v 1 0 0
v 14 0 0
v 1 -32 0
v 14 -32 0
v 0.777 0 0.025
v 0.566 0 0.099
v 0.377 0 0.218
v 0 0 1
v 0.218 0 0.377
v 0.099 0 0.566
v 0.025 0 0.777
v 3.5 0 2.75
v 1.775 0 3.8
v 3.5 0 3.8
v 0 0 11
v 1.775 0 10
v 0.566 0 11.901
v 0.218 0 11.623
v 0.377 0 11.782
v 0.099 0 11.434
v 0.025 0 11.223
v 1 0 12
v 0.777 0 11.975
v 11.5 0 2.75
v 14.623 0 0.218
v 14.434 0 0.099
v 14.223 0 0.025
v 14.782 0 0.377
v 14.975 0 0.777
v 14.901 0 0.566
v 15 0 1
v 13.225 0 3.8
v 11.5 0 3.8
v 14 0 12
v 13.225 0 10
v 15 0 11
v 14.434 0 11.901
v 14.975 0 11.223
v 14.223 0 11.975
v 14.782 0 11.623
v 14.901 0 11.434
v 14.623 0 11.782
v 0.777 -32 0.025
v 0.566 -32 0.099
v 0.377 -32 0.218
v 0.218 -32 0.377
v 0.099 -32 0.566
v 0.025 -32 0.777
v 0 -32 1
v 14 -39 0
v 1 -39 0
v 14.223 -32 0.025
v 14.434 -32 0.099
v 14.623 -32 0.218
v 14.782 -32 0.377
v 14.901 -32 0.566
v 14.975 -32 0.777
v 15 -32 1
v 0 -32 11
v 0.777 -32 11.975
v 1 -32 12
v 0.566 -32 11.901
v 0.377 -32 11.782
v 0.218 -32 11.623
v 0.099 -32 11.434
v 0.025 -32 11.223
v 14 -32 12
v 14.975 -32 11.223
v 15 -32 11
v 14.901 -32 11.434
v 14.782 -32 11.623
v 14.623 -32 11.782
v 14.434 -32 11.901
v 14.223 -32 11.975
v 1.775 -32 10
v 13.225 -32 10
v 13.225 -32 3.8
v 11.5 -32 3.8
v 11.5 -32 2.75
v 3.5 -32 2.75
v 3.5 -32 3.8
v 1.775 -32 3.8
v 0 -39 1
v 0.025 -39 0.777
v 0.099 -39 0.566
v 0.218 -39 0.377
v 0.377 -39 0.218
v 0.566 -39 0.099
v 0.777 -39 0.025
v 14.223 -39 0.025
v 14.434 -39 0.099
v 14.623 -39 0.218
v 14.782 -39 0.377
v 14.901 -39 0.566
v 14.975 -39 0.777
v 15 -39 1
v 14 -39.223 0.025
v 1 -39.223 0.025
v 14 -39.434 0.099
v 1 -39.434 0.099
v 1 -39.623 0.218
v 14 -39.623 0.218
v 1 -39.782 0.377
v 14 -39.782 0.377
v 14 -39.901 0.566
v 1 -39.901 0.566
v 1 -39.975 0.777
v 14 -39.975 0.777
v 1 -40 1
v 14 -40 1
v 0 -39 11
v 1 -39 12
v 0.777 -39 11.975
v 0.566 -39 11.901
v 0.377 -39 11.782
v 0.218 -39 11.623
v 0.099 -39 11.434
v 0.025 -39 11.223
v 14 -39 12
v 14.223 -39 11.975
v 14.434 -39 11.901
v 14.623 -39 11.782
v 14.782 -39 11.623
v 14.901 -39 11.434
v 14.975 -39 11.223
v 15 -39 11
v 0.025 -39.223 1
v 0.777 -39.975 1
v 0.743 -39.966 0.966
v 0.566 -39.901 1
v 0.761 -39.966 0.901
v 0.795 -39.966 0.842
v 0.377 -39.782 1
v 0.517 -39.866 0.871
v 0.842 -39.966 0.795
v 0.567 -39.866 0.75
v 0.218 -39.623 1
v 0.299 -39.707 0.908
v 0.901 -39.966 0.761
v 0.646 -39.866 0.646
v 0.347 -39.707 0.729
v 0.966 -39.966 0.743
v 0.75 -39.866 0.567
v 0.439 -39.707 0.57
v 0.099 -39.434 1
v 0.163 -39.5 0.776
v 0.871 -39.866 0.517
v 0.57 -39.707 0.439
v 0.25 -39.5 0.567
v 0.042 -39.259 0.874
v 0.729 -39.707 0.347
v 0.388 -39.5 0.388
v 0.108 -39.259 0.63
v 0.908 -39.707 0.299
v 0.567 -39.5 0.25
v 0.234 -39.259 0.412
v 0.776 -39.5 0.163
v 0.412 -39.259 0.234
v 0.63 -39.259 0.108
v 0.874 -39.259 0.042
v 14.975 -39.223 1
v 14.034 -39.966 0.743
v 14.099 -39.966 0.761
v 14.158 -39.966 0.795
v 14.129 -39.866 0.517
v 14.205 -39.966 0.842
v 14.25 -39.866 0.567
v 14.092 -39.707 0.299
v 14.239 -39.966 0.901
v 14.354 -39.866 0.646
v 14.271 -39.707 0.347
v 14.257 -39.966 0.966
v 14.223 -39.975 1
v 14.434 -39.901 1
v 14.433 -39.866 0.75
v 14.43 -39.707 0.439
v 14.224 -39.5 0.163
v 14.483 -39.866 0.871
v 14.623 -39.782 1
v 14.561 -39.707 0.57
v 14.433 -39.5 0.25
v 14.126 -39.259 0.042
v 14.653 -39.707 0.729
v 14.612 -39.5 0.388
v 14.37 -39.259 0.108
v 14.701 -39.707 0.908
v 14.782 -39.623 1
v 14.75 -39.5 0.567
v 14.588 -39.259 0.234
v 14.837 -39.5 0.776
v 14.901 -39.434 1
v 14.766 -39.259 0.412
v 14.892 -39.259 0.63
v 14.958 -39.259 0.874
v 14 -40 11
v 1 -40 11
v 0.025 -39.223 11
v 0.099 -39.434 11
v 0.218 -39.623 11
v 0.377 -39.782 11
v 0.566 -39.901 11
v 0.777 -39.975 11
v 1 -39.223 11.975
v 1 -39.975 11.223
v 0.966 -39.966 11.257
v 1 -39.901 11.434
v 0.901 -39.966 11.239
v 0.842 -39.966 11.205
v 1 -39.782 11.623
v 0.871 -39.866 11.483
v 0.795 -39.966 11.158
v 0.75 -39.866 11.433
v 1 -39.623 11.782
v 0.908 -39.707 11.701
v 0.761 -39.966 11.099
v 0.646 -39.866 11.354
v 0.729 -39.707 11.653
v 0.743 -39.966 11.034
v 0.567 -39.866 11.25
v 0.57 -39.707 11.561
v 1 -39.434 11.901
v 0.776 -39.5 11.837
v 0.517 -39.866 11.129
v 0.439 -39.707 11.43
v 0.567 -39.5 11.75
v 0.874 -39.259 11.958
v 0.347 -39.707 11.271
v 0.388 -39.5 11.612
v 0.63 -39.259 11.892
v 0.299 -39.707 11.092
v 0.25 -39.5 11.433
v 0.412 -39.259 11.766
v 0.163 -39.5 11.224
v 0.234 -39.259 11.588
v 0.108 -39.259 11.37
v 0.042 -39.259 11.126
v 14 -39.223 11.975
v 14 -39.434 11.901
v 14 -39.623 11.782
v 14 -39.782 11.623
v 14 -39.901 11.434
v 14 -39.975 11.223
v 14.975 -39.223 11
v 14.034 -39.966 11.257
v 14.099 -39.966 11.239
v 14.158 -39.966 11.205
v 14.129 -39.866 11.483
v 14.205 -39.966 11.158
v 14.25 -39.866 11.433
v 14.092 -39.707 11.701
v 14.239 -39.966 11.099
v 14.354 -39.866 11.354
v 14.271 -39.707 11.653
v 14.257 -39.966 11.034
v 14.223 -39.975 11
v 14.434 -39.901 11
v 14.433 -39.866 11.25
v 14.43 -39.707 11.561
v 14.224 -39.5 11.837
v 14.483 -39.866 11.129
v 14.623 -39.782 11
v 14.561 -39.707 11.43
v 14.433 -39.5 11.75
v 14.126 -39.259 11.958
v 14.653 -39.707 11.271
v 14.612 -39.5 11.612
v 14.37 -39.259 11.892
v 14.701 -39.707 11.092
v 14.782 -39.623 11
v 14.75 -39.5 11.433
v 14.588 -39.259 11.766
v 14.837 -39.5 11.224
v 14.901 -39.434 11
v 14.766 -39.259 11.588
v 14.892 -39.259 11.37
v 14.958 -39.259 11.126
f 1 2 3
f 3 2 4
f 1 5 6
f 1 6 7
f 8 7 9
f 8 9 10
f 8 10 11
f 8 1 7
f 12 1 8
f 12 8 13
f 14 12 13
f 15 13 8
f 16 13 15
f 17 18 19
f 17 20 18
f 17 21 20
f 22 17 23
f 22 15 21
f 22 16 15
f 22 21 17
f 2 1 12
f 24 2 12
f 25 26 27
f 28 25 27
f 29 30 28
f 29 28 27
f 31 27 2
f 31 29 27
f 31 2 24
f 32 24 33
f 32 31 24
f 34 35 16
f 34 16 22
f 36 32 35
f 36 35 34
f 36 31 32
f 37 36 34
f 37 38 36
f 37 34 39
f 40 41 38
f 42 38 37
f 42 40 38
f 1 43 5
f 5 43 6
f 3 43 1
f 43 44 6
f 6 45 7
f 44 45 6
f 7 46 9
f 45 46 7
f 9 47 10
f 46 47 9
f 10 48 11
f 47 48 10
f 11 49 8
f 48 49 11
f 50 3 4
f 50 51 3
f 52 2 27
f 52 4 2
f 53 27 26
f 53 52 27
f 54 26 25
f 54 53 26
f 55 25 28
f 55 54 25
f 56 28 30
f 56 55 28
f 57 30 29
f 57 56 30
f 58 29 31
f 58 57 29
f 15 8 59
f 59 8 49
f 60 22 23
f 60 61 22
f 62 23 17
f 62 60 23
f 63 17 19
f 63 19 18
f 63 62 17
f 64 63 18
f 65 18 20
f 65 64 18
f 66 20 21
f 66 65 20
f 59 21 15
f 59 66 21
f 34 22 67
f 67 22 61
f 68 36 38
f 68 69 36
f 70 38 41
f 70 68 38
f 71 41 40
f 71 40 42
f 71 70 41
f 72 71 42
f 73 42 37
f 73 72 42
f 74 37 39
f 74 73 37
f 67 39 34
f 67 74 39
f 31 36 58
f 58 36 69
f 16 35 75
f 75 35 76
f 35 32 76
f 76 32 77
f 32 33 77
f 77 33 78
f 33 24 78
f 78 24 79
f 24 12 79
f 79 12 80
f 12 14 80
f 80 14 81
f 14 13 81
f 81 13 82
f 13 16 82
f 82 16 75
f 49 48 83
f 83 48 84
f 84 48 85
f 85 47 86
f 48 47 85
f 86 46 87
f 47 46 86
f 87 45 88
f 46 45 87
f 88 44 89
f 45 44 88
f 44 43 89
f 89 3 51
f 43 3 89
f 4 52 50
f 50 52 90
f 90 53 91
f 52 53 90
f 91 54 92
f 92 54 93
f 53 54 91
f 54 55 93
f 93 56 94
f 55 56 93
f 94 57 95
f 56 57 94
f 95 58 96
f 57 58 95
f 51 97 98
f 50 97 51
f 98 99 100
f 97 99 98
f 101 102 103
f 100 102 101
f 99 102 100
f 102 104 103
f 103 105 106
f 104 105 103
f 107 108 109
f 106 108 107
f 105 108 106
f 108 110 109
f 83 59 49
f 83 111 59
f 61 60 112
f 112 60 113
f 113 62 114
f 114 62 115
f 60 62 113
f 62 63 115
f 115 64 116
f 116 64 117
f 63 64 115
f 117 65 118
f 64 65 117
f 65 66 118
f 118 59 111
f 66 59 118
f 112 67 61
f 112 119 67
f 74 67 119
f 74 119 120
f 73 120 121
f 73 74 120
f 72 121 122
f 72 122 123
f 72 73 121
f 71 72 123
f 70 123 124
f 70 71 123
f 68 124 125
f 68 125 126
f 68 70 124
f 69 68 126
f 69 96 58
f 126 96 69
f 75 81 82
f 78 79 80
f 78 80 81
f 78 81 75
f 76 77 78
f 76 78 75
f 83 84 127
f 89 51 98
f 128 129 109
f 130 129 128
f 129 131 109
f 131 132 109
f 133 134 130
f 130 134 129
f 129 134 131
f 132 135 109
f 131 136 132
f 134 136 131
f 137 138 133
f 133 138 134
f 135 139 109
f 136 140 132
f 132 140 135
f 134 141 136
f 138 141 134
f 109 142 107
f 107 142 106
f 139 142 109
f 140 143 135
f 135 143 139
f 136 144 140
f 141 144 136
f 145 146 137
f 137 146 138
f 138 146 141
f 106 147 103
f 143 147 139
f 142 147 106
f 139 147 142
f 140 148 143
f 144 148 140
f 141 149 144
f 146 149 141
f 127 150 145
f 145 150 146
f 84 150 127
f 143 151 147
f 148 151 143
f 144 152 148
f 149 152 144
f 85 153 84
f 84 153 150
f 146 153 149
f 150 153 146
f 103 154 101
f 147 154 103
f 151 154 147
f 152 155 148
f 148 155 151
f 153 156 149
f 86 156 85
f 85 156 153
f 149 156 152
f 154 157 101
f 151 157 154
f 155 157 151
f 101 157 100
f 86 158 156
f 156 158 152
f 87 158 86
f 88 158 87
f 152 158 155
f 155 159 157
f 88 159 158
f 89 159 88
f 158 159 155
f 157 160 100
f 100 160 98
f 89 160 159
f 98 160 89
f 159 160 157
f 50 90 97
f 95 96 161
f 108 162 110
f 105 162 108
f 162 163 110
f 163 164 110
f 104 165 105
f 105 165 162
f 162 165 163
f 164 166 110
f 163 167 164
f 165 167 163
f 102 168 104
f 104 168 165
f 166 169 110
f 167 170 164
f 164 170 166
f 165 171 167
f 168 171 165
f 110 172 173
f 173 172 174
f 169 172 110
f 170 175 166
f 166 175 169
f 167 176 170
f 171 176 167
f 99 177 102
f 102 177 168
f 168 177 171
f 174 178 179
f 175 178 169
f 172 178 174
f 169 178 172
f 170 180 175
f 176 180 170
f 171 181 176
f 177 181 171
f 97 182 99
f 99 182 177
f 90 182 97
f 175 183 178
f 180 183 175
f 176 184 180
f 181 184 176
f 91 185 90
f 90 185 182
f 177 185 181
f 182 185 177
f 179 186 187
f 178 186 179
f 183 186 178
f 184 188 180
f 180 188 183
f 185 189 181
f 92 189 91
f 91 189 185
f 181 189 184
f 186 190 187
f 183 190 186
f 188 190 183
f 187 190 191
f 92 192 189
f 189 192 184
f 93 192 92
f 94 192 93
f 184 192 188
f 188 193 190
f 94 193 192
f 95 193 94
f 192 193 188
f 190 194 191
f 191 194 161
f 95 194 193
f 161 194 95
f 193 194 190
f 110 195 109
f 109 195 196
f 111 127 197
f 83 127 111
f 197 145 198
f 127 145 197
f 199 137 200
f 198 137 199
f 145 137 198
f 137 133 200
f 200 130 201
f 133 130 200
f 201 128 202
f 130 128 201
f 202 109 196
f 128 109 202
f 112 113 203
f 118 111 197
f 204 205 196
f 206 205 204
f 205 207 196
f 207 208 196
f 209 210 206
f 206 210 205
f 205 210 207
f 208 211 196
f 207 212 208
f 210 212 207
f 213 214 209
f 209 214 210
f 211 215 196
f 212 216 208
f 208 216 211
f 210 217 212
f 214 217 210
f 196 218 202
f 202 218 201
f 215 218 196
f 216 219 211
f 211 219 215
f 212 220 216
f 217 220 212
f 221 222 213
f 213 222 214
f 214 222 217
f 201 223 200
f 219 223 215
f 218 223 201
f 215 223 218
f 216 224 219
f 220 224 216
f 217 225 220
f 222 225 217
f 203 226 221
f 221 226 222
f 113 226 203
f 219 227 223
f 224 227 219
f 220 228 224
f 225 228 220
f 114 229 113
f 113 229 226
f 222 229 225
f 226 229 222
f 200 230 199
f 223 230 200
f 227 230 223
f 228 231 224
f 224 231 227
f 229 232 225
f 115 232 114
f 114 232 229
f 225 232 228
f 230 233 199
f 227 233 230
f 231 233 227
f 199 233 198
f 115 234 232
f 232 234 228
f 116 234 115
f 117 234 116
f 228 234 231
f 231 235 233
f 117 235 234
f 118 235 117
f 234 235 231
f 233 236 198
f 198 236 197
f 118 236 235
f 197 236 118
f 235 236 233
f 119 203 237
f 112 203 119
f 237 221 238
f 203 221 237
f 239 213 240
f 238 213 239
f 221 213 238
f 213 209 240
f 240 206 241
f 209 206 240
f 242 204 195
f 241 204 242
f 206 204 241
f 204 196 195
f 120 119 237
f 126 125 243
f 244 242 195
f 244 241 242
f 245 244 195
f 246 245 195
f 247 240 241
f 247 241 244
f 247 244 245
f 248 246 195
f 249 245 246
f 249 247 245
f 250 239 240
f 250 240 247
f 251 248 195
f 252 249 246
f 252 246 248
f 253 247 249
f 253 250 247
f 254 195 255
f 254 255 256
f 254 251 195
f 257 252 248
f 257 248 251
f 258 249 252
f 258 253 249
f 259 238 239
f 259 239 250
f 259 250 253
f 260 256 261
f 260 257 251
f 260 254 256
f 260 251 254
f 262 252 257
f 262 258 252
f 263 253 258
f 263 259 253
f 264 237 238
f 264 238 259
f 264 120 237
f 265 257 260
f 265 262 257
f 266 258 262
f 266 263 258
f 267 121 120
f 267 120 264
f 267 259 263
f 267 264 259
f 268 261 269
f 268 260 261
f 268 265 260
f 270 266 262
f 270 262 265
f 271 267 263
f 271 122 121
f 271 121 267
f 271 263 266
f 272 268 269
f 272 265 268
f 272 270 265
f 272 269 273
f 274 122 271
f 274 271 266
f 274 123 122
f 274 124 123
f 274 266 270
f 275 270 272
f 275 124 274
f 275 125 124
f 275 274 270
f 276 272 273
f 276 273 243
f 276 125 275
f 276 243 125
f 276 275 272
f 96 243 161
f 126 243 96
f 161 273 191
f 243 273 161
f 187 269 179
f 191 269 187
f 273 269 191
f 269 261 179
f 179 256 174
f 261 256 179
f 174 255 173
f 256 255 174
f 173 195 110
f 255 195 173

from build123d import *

# Parameters (mm, degrees)
FACE001_W        = 15
FACE001_H        = 12
EXTRUDE001_DEPTH = 8
FILLET001_R      = 1
SKETCH_W         = 15
SKETCH_H         = 12
EXTRUDE_DEPTH    = 32
FILLET_R         = 1


with BuildPart() as fillet001:
    # Face001 → Extrude001 (new body)
    with BuildSketch(Plane(origin=(7.5, -32, 6), x_dir=(1, 0, 0), z_dir=(0, 1, 0))):
        Rectangle(FACE001_W, FACE001_H)
    extrude(amount=EXTRUDE001_DEPTH)


with BuildPart() as fillet001_1:
    # Extrude001 placement: moved
    add(fillet001.part.moved(Location((0, -8, 0))))

    # Fillet001
    fillet001_edges = [fillet001_1.edges().sort_by_distance(p)[0] for p in [
        (15, -36, 12),
        (0, -36, 12),
        (7.5, -40, 12),
        (0, -36, 0),
        (0, -40, 6),
        (15, -36, 0),
        (7.5, -40, 0),
        (15, -40, 6),
    ]]
    fillet(fillet001_edges, radius=FILLET001_R)


with BuildPart() as fusion:
    # Sketch → Extrude (new body)
    with BuildSketch(Plane.XZ):
        with Locations((7.5, 6)):
            Rectangle(SKETCH_W, SKETCH_H)
        Polygon((1.775, 10), (13.225, 10), (13.225, 3.8), (11.5, 3.8), (11.5, 2.75), (3.5, 2.75), (3.5, 3.8), (1.775, 3.8), align=None, mode=Mode.SUBTRACT)
    extrude(amount=EXTRUDE_DEPTH)

    # Fillet
    fillet_edges = [fusion.edges().sort_by_distance(p)[0] for p in [
        (0, -16, 0),
        (15, -16, 0),
        (15, -16, 12),
        (0, -16, 12),
    ]]
    fillet(fillet_edges, radius=FILLET_R)

    # Fusion: union Fillet001
    add(fillet001_1.part)


solid = fusion.part
